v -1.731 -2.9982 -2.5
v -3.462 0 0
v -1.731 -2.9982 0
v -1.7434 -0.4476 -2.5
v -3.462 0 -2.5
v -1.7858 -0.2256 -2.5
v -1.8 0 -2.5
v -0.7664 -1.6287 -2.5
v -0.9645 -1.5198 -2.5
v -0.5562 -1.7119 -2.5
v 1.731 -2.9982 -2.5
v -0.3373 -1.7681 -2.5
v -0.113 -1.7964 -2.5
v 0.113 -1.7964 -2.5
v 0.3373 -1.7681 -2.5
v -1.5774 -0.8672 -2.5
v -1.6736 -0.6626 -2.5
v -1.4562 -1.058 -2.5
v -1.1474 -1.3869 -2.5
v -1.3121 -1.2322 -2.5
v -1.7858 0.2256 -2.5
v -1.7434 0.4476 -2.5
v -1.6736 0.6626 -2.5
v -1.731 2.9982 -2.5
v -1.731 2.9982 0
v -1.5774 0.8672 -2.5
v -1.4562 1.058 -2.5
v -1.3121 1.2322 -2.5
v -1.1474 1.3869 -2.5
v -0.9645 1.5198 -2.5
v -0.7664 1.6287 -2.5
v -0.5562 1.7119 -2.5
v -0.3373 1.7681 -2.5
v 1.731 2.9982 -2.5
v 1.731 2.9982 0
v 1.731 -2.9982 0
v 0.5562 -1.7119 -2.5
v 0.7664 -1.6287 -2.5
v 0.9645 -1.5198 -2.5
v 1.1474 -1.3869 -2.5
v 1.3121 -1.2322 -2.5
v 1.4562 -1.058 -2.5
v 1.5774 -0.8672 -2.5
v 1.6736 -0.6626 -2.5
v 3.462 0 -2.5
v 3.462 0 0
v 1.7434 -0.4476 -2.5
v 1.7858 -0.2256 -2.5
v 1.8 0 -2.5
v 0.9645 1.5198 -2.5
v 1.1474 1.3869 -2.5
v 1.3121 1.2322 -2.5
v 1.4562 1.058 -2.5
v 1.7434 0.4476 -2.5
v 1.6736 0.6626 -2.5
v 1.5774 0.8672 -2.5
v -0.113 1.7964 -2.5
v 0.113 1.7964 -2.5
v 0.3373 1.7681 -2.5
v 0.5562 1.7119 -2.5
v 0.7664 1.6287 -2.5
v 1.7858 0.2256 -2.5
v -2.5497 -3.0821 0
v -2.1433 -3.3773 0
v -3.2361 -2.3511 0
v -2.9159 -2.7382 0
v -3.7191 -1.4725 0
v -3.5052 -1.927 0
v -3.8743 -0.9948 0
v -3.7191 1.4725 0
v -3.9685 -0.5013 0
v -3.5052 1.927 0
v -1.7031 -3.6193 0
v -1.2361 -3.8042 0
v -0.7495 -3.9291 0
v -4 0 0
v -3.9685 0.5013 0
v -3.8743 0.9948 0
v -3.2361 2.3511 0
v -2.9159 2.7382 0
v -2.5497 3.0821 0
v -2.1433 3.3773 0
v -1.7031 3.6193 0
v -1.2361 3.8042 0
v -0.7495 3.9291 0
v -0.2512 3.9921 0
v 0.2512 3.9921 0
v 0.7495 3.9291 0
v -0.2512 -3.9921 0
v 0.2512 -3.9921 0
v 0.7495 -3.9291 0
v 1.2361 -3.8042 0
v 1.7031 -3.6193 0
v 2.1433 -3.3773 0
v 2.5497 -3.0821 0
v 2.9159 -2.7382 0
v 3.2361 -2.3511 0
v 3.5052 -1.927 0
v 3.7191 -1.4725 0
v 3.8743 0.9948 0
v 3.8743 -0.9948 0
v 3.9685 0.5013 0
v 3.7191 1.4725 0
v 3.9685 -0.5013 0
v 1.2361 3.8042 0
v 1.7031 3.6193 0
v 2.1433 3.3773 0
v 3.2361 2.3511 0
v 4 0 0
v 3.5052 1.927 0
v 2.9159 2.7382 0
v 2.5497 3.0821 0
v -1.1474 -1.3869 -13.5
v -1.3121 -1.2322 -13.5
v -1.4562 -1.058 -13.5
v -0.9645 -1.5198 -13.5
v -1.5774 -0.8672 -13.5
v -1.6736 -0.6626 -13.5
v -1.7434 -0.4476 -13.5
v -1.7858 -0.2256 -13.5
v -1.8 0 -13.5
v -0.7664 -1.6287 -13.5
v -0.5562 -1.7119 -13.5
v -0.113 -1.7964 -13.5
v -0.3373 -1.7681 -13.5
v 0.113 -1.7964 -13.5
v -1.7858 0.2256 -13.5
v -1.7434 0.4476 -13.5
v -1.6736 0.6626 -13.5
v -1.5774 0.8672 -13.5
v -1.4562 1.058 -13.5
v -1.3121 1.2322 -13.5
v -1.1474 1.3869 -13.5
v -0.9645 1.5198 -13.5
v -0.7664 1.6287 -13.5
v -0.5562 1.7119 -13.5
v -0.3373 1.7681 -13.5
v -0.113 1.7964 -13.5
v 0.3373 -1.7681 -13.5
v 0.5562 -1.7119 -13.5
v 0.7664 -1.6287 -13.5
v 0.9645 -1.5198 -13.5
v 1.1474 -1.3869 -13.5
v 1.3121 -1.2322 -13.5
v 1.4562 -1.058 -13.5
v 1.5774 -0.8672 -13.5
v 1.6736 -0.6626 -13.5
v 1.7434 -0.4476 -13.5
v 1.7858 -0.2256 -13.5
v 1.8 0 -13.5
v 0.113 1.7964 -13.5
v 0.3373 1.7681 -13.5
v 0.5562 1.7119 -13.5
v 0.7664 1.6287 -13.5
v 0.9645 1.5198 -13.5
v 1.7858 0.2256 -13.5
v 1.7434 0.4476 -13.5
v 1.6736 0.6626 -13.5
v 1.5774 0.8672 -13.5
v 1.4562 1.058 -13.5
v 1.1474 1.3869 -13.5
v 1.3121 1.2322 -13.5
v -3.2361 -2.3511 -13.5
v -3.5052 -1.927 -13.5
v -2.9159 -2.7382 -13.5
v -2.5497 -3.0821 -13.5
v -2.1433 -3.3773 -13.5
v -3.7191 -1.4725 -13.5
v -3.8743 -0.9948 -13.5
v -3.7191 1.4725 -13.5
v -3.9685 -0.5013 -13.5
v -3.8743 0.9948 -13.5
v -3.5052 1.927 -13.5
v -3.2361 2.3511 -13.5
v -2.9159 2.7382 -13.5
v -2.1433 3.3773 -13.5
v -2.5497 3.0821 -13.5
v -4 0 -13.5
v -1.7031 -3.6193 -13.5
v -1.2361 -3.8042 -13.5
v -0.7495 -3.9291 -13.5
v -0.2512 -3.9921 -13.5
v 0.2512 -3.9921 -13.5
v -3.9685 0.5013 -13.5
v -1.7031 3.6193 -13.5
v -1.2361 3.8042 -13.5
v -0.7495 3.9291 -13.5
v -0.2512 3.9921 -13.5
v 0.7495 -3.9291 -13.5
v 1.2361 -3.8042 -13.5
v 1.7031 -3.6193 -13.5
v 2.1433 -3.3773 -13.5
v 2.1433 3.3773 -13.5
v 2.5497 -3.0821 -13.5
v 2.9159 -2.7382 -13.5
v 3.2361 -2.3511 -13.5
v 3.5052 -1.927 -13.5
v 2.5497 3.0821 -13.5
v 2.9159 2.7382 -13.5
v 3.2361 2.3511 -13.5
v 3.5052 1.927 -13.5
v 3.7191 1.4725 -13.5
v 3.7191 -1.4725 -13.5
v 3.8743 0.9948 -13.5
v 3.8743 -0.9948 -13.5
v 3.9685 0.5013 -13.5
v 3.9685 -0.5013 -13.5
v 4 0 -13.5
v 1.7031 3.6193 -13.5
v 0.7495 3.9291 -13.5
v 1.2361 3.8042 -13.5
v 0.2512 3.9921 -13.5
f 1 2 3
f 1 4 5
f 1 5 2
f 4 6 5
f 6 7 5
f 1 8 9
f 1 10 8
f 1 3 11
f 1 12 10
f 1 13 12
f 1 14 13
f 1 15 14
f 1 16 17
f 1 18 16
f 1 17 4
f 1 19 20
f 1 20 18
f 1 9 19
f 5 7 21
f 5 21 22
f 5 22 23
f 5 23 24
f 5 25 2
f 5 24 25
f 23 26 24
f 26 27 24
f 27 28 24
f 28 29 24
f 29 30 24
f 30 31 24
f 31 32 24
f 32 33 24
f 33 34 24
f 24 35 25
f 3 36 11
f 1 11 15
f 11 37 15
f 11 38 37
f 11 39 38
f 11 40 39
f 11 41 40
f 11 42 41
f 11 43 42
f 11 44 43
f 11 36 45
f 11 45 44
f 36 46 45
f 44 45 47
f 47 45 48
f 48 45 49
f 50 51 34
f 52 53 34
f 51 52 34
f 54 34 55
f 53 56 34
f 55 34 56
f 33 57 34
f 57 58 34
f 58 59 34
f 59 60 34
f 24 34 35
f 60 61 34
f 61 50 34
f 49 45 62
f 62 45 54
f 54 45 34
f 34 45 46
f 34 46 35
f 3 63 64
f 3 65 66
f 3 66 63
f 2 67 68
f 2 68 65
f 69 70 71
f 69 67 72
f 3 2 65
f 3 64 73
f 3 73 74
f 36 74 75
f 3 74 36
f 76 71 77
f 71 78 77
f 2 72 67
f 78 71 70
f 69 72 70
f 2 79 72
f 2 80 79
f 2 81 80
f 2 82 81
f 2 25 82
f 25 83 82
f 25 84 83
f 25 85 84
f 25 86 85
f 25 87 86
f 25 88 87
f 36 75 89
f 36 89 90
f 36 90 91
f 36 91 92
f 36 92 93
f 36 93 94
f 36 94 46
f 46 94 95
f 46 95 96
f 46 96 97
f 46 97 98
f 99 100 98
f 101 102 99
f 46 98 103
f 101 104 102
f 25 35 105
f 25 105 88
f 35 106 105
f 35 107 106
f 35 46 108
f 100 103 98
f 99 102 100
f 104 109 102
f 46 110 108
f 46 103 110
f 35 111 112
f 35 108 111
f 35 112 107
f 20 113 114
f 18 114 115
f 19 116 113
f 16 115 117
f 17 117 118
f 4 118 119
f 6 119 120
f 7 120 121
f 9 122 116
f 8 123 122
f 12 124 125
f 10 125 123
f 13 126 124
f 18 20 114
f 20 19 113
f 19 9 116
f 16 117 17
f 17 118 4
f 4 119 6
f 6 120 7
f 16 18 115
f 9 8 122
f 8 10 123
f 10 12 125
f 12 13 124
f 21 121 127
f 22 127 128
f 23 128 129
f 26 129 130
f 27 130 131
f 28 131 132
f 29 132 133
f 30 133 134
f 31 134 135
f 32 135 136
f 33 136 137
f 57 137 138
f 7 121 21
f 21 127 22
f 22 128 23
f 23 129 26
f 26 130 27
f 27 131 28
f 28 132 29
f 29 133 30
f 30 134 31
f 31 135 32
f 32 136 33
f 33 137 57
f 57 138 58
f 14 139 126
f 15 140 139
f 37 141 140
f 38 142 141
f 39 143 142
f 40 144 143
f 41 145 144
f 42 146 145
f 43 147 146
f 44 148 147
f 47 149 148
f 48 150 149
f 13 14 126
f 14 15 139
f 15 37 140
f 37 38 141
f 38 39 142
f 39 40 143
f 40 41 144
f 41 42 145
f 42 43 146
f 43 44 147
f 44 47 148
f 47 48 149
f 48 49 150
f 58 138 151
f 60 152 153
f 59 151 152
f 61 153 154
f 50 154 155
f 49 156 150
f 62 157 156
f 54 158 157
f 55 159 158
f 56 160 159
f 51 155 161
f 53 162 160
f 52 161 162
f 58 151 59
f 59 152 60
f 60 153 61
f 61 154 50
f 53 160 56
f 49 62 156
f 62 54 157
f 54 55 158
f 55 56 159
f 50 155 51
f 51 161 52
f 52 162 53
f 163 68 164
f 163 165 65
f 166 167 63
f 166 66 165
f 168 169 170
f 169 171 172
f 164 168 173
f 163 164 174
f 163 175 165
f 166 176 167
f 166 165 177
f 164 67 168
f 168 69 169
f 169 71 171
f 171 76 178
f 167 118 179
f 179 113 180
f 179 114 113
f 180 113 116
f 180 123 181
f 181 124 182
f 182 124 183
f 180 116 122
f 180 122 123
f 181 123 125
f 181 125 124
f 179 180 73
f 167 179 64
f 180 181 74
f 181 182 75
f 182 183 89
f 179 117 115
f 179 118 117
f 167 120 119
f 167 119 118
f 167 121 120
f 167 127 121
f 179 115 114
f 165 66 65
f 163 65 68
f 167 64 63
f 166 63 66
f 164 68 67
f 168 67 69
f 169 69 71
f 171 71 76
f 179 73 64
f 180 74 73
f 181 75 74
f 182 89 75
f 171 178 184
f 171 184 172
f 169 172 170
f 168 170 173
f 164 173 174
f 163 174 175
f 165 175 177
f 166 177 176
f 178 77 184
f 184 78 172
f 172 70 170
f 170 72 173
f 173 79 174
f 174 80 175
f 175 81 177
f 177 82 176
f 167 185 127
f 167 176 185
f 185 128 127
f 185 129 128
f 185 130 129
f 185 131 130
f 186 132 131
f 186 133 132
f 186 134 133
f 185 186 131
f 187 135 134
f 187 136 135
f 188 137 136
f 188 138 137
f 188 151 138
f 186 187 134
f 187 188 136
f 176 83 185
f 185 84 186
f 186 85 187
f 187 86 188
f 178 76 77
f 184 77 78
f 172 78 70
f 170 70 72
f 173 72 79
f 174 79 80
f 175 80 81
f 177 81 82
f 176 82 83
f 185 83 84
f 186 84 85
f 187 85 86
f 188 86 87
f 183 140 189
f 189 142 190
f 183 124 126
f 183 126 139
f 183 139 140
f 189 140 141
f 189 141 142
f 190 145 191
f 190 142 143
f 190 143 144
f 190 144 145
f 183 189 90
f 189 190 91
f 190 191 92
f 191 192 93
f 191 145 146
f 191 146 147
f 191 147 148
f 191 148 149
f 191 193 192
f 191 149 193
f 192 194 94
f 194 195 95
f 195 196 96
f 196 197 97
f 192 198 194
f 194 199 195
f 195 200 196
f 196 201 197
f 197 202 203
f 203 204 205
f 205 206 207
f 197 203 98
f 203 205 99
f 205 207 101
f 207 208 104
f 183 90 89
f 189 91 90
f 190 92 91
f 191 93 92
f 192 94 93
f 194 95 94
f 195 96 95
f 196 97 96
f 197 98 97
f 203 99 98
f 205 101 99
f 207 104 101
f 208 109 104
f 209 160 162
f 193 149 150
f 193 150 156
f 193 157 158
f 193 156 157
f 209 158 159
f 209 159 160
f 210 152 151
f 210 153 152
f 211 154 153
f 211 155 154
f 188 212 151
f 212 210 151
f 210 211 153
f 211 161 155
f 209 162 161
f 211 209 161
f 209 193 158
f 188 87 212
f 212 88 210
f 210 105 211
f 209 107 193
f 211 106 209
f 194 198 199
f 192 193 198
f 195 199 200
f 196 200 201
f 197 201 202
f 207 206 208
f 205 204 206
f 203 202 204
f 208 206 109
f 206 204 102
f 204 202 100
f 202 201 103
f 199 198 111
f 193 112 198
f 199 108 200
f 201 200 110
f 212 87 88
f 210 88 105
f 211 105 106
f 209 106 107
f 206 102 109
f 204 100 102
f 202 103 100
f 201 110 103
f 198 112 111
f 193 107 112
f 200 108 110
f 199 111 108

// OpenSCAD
$fn = 50;

difference() {
	union() {
		translate(v = [0, 0, -13.5]) {
			cylinder(h = 16.5, r = 4.0);
		}
	}
	union() {
		translate(v = [0, 0, 0]) {
			rotate(a = [0, 0, 0]) {
				difference() {
					union() {
						translate(v = [0, 0, -2.5]) {
							linear_extrude(height = 2.5) {
								polygon(points = [[3.4619999999999997, 0.0], [1.7310000000000003, 2.9981799479017264], [-1.7309999999999992, 2.9981799479017264], [-3.4619999999999997, 4.2397272186481365e-16], [-1.7310000000000014, -2.998179947901726], [1.7309999999999977, -2.9981799479017277]]);
							}
						}
					}
					union();
				}
			}
		}
		#cylinder(h = 3, r = 5.0);
		#translate(v = [0, 0, -100.0]) {
			cylinder(h = 200, r = 1.8);
		}
	}
}
